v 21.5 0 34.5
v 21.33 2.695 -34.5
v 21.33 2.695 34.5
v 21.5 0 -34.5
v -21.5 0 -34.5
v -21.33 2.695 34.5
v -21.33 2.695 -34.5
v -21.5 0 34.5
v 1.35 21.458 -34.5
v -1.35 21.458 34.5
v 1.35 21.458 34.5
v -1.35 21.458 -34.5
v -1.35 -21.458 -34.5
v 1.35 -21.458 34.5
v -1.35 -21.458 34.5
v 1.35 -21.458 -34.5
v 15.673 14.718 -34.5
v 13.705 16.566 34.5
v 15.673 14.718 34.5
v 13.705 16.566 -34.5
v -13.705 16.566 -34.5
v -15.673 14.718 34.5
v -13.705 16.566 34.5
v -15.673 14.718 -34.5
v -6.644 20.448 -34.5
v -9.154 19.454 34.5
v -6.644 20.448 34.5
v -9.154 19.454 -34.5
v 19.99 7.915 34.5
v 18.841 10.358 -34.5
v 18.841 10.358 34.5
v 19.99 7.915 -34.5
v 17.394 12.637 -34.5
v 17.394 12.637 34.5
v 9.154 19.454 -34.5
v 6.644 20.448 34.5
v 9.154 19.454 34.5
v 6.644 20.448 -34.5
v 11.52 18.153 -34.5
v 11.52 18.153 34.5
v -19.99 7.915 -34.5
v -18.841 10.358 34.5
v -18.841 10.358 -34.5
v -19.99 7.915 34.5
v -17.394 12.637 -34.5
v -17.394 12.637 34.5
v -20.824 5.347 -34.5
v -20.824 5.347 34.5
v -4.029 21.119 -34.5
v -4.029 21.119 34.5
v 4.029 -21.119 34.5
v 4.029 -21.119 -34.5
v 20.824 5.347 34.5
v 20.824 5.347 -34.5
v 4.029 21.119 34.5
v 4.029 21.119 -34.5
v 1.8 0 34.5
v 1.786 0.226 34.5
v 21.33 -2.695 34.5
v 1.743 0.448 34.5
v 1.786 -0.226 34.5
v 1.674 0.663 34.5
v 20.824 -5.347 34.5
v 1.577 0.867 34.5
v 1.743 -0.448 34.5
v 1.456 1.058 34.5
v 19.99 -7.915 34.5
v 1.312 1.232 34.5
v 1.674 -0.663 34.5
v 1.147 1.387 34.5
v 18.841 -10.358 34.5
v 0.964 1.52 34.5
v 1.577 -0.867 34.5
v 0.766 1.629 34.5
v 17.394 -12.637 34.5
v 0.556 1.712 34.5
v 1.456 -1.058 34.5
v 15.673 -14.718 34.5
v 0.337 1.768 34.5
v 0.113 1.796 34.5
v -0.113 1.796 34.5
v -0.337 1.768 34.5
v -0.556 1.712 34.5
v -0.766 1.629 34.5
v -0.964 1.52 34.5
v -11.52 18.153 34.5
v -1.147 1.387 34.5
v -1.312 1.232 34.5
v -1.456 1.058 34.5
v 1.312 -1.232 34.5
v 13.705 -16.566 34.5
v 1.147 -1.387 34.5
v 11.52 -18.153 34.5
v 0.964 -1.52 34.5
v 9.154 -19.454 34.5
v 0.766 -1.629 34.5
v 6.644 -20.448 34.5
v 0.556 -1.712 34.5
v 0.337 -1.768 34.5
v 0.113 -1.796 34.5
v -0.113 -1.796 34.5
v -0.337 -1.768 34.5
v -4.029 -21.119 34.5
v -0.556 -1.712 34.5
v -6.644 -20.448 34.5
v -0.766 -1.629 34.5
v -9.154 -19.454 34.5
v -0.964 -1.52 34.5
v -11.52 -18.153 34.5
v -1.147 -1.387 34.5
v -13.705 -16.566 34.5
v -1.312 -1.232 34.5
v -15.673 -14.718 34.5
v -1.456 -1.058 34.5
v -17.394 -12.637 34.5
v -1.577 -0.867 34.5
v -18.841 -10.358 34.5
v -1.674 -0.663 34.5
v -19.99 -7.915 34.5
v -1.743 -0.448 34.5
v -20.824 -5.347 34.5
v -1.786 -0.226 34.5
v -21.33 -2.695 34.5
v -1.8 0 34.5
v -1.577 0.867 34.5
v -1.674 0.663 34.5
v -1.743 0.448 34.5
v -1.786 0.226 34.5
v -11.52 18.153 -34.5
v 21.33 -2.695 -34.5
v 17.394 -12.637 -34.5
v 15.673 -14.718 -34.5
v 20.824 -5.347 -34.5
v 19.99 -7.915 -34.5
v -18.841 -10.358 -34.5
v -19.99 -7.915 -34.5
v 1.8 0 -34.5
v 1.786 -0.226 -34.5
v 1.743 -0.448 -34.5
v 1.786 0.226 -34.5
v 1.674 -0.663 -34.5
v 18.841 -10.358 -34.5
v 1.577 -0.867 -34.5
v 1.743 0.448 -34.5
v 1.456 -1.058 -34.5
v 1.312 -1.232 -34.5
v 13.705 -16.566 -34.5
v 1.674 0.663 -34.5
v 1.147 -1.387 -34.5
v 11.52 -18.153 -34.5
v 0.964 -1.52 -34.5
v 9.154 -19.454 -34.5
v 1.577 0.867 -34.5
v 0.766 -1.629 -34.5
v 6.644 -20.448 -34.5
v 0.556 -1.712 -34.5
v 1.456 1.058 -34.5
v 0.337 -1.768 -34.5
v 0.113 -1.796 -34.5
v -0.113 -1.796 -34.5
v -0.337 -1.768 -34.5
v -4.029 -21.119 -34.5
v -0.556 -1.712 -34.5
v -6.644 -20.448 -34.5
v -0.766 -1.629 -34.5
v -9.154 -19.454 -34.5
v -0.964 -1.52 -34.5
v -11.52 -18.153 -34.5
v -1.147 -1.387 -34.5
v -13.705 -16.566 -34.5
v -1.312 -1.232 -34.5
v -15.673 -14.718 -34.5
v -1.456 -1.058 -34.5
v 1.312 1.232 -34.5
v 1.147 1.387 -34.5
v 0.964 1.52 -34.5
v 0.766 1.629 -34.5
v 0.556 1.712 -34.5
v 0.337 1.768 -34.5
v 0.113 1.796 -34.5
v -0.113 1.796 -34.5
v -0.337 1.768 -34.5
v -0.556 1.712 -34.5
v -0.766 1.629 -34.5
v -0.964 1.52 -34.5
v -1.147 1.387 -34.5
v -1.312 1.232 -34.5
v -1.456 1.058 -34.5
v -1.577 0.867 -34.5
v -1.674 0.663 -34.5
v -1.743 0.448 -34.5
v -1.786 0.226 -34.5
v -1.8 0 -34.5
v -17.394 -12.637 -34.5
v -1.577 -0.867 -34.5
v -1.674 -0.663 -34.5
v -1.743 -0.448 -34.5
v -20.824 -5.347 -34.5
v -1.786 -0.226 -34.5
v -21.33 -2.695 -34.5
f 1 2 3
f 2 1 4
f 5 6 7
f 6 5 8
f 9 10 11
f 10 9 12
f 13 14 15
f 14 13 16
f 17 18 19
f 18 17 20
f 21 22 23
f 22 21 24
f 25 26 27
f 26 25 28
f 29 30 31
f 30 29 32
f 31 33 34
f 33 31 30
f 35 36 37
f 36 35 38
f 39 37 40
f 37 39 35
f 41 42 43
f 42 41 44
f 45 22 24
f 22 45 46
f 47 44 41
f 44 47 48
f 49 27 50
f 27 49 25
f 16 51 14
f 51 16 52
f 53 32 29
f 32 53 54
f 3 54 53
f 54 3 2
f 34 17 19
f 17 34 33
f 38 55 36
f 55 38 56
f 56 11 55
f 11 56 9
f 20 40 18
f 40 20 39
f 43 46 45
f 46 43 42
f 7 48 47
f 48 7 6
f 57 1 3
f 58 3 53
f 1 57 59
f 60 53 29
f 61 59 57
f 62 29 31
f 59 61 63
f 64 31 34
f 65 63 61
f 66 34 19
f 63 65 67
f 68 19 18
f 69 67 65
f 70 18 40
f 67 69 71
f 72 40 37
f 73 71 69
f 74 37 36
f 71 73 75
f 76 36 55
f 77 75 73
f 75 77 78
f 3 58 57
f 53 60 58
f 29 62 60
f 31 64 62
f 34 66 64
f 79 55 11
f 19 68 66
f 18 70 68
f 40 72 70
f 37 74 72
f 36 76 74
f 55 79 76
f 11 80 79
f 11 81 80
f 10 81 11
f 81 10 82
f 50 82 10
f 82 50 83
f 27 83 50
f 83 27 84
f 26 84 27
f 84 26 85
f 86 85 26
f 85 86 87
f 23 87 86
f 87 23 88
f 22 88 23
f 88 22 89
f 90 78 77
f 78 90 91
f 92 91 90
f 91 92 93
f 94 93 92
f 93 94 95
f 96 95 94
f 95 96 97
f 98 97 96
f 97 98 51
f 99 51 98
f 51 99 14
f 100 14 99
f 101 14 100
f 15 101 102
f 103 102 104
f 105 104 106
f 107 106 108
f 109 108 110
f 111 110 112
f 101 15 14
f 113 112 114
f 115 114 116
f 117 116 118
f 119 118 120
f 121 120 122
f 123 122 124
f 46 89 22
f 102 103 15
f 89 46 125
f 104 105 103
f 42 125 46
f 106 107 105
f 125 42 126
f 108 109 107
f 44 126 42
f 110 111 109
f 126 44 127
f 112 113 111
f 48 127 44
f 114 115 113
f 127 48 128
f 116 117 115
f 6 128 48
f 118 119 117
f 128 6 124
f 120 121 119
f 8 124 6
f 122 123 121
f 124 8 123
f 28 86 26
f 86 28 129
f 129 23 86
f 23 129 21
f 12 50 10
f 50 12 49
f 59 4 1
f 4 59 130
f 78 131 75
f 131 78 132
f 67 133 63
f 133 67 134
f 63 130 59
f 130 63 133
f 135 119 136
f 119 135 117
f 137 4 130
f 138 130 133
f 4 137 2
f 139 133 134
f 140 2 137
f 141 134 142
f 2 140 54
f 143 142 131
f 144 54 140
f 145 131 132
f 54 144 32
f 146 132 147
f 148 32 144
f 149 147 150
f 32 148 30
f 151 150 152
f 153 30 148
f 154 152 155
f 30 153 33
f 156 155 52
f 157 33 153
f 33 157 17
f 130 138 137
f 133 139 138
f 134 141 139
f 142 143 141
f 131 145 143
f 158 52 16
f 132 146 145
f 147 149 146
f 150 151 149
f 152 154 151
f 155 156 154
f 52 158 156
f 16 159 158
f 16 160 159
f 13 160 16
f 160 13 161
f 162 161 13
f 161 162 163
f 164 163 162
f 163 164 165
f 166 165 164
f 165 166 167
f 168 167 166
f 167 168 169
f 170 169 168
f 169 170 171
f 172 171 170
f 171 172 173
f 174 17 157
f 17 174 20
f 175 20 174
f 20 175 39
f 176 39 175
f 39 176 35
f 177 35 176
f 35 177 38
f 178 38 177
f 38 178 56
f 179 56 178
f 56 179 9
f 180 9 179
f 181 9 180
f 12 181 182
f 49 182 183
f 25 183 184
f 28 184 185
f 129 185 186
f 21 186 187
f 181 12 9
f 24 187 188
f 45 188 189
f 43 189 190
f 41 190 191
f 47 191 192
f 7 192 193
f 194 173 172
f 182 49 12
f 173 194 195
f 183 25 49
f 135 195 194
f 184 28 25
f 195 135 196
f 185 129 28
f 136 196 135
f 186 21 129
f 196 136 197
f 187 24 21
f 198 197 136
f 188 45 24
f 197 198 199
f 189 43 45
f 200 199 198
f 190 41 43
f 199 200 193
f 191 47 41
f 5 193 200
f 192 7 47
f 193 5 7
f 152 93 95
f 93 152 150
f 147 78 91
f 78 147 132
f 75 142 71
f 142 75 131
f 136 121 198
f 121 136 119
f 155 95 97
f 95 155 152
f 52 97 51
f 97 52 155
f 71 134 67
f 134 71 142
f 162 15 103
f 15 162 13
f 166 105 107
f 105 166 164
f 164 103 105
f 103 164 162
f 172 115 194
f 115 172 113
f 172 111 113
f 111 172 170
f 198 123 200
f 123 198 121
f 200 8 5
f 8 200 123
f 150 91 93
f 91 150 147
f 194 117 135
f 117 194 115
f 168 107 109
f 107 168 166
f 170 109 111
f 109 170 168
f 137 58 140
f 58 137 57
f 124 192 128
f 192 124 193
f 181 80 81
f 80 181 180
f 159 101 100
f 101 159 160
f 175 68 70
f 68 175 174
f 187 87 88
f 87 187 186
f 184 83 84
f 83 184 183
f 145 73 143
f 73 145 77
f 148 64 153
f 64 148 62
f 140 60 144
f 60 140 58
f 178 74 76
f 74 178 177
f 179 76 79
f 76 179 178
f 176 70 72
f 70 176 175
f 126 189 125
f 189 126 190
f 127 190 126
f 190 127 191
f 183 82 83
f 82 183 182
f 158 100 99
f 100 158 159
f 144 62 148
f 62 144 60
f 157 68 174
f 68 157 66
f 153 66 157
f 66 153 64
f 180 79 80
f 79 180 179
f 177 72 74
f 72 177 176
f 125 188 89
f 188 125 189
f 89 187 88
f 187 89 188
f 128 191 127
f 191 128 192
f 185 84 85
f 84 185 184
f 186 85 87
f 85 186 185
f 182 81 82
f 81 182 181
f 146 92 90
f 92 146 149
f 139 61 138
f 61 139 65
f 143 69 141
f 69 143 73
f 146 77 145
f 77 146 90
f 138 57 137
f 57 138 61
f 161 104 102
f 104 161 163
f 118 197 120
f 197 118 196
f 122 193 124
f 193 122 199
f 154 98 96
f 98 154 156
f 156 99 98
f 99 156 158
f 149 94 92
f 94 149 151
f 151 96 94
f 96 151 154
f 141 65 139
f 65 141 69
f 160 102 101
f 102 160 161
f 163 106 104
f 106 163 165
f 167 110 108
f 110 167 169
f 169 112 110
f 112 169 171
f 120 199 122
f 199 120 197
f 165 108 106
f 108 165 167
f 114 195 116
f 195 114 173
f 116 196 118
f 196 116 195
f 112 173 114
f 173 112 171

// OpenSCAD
$fn = 50;


difference() {
	union() {
		translate(v = [0, 0, -34.5000000000]) {
			cylinder(h = 69, r = 21.5000000000);
		}
	}
	union() {
		translate(v = [0, 0, -100.0000000000]) {
			cylinder(h = 200, r = 1.8000000000);
		}
	}
}
